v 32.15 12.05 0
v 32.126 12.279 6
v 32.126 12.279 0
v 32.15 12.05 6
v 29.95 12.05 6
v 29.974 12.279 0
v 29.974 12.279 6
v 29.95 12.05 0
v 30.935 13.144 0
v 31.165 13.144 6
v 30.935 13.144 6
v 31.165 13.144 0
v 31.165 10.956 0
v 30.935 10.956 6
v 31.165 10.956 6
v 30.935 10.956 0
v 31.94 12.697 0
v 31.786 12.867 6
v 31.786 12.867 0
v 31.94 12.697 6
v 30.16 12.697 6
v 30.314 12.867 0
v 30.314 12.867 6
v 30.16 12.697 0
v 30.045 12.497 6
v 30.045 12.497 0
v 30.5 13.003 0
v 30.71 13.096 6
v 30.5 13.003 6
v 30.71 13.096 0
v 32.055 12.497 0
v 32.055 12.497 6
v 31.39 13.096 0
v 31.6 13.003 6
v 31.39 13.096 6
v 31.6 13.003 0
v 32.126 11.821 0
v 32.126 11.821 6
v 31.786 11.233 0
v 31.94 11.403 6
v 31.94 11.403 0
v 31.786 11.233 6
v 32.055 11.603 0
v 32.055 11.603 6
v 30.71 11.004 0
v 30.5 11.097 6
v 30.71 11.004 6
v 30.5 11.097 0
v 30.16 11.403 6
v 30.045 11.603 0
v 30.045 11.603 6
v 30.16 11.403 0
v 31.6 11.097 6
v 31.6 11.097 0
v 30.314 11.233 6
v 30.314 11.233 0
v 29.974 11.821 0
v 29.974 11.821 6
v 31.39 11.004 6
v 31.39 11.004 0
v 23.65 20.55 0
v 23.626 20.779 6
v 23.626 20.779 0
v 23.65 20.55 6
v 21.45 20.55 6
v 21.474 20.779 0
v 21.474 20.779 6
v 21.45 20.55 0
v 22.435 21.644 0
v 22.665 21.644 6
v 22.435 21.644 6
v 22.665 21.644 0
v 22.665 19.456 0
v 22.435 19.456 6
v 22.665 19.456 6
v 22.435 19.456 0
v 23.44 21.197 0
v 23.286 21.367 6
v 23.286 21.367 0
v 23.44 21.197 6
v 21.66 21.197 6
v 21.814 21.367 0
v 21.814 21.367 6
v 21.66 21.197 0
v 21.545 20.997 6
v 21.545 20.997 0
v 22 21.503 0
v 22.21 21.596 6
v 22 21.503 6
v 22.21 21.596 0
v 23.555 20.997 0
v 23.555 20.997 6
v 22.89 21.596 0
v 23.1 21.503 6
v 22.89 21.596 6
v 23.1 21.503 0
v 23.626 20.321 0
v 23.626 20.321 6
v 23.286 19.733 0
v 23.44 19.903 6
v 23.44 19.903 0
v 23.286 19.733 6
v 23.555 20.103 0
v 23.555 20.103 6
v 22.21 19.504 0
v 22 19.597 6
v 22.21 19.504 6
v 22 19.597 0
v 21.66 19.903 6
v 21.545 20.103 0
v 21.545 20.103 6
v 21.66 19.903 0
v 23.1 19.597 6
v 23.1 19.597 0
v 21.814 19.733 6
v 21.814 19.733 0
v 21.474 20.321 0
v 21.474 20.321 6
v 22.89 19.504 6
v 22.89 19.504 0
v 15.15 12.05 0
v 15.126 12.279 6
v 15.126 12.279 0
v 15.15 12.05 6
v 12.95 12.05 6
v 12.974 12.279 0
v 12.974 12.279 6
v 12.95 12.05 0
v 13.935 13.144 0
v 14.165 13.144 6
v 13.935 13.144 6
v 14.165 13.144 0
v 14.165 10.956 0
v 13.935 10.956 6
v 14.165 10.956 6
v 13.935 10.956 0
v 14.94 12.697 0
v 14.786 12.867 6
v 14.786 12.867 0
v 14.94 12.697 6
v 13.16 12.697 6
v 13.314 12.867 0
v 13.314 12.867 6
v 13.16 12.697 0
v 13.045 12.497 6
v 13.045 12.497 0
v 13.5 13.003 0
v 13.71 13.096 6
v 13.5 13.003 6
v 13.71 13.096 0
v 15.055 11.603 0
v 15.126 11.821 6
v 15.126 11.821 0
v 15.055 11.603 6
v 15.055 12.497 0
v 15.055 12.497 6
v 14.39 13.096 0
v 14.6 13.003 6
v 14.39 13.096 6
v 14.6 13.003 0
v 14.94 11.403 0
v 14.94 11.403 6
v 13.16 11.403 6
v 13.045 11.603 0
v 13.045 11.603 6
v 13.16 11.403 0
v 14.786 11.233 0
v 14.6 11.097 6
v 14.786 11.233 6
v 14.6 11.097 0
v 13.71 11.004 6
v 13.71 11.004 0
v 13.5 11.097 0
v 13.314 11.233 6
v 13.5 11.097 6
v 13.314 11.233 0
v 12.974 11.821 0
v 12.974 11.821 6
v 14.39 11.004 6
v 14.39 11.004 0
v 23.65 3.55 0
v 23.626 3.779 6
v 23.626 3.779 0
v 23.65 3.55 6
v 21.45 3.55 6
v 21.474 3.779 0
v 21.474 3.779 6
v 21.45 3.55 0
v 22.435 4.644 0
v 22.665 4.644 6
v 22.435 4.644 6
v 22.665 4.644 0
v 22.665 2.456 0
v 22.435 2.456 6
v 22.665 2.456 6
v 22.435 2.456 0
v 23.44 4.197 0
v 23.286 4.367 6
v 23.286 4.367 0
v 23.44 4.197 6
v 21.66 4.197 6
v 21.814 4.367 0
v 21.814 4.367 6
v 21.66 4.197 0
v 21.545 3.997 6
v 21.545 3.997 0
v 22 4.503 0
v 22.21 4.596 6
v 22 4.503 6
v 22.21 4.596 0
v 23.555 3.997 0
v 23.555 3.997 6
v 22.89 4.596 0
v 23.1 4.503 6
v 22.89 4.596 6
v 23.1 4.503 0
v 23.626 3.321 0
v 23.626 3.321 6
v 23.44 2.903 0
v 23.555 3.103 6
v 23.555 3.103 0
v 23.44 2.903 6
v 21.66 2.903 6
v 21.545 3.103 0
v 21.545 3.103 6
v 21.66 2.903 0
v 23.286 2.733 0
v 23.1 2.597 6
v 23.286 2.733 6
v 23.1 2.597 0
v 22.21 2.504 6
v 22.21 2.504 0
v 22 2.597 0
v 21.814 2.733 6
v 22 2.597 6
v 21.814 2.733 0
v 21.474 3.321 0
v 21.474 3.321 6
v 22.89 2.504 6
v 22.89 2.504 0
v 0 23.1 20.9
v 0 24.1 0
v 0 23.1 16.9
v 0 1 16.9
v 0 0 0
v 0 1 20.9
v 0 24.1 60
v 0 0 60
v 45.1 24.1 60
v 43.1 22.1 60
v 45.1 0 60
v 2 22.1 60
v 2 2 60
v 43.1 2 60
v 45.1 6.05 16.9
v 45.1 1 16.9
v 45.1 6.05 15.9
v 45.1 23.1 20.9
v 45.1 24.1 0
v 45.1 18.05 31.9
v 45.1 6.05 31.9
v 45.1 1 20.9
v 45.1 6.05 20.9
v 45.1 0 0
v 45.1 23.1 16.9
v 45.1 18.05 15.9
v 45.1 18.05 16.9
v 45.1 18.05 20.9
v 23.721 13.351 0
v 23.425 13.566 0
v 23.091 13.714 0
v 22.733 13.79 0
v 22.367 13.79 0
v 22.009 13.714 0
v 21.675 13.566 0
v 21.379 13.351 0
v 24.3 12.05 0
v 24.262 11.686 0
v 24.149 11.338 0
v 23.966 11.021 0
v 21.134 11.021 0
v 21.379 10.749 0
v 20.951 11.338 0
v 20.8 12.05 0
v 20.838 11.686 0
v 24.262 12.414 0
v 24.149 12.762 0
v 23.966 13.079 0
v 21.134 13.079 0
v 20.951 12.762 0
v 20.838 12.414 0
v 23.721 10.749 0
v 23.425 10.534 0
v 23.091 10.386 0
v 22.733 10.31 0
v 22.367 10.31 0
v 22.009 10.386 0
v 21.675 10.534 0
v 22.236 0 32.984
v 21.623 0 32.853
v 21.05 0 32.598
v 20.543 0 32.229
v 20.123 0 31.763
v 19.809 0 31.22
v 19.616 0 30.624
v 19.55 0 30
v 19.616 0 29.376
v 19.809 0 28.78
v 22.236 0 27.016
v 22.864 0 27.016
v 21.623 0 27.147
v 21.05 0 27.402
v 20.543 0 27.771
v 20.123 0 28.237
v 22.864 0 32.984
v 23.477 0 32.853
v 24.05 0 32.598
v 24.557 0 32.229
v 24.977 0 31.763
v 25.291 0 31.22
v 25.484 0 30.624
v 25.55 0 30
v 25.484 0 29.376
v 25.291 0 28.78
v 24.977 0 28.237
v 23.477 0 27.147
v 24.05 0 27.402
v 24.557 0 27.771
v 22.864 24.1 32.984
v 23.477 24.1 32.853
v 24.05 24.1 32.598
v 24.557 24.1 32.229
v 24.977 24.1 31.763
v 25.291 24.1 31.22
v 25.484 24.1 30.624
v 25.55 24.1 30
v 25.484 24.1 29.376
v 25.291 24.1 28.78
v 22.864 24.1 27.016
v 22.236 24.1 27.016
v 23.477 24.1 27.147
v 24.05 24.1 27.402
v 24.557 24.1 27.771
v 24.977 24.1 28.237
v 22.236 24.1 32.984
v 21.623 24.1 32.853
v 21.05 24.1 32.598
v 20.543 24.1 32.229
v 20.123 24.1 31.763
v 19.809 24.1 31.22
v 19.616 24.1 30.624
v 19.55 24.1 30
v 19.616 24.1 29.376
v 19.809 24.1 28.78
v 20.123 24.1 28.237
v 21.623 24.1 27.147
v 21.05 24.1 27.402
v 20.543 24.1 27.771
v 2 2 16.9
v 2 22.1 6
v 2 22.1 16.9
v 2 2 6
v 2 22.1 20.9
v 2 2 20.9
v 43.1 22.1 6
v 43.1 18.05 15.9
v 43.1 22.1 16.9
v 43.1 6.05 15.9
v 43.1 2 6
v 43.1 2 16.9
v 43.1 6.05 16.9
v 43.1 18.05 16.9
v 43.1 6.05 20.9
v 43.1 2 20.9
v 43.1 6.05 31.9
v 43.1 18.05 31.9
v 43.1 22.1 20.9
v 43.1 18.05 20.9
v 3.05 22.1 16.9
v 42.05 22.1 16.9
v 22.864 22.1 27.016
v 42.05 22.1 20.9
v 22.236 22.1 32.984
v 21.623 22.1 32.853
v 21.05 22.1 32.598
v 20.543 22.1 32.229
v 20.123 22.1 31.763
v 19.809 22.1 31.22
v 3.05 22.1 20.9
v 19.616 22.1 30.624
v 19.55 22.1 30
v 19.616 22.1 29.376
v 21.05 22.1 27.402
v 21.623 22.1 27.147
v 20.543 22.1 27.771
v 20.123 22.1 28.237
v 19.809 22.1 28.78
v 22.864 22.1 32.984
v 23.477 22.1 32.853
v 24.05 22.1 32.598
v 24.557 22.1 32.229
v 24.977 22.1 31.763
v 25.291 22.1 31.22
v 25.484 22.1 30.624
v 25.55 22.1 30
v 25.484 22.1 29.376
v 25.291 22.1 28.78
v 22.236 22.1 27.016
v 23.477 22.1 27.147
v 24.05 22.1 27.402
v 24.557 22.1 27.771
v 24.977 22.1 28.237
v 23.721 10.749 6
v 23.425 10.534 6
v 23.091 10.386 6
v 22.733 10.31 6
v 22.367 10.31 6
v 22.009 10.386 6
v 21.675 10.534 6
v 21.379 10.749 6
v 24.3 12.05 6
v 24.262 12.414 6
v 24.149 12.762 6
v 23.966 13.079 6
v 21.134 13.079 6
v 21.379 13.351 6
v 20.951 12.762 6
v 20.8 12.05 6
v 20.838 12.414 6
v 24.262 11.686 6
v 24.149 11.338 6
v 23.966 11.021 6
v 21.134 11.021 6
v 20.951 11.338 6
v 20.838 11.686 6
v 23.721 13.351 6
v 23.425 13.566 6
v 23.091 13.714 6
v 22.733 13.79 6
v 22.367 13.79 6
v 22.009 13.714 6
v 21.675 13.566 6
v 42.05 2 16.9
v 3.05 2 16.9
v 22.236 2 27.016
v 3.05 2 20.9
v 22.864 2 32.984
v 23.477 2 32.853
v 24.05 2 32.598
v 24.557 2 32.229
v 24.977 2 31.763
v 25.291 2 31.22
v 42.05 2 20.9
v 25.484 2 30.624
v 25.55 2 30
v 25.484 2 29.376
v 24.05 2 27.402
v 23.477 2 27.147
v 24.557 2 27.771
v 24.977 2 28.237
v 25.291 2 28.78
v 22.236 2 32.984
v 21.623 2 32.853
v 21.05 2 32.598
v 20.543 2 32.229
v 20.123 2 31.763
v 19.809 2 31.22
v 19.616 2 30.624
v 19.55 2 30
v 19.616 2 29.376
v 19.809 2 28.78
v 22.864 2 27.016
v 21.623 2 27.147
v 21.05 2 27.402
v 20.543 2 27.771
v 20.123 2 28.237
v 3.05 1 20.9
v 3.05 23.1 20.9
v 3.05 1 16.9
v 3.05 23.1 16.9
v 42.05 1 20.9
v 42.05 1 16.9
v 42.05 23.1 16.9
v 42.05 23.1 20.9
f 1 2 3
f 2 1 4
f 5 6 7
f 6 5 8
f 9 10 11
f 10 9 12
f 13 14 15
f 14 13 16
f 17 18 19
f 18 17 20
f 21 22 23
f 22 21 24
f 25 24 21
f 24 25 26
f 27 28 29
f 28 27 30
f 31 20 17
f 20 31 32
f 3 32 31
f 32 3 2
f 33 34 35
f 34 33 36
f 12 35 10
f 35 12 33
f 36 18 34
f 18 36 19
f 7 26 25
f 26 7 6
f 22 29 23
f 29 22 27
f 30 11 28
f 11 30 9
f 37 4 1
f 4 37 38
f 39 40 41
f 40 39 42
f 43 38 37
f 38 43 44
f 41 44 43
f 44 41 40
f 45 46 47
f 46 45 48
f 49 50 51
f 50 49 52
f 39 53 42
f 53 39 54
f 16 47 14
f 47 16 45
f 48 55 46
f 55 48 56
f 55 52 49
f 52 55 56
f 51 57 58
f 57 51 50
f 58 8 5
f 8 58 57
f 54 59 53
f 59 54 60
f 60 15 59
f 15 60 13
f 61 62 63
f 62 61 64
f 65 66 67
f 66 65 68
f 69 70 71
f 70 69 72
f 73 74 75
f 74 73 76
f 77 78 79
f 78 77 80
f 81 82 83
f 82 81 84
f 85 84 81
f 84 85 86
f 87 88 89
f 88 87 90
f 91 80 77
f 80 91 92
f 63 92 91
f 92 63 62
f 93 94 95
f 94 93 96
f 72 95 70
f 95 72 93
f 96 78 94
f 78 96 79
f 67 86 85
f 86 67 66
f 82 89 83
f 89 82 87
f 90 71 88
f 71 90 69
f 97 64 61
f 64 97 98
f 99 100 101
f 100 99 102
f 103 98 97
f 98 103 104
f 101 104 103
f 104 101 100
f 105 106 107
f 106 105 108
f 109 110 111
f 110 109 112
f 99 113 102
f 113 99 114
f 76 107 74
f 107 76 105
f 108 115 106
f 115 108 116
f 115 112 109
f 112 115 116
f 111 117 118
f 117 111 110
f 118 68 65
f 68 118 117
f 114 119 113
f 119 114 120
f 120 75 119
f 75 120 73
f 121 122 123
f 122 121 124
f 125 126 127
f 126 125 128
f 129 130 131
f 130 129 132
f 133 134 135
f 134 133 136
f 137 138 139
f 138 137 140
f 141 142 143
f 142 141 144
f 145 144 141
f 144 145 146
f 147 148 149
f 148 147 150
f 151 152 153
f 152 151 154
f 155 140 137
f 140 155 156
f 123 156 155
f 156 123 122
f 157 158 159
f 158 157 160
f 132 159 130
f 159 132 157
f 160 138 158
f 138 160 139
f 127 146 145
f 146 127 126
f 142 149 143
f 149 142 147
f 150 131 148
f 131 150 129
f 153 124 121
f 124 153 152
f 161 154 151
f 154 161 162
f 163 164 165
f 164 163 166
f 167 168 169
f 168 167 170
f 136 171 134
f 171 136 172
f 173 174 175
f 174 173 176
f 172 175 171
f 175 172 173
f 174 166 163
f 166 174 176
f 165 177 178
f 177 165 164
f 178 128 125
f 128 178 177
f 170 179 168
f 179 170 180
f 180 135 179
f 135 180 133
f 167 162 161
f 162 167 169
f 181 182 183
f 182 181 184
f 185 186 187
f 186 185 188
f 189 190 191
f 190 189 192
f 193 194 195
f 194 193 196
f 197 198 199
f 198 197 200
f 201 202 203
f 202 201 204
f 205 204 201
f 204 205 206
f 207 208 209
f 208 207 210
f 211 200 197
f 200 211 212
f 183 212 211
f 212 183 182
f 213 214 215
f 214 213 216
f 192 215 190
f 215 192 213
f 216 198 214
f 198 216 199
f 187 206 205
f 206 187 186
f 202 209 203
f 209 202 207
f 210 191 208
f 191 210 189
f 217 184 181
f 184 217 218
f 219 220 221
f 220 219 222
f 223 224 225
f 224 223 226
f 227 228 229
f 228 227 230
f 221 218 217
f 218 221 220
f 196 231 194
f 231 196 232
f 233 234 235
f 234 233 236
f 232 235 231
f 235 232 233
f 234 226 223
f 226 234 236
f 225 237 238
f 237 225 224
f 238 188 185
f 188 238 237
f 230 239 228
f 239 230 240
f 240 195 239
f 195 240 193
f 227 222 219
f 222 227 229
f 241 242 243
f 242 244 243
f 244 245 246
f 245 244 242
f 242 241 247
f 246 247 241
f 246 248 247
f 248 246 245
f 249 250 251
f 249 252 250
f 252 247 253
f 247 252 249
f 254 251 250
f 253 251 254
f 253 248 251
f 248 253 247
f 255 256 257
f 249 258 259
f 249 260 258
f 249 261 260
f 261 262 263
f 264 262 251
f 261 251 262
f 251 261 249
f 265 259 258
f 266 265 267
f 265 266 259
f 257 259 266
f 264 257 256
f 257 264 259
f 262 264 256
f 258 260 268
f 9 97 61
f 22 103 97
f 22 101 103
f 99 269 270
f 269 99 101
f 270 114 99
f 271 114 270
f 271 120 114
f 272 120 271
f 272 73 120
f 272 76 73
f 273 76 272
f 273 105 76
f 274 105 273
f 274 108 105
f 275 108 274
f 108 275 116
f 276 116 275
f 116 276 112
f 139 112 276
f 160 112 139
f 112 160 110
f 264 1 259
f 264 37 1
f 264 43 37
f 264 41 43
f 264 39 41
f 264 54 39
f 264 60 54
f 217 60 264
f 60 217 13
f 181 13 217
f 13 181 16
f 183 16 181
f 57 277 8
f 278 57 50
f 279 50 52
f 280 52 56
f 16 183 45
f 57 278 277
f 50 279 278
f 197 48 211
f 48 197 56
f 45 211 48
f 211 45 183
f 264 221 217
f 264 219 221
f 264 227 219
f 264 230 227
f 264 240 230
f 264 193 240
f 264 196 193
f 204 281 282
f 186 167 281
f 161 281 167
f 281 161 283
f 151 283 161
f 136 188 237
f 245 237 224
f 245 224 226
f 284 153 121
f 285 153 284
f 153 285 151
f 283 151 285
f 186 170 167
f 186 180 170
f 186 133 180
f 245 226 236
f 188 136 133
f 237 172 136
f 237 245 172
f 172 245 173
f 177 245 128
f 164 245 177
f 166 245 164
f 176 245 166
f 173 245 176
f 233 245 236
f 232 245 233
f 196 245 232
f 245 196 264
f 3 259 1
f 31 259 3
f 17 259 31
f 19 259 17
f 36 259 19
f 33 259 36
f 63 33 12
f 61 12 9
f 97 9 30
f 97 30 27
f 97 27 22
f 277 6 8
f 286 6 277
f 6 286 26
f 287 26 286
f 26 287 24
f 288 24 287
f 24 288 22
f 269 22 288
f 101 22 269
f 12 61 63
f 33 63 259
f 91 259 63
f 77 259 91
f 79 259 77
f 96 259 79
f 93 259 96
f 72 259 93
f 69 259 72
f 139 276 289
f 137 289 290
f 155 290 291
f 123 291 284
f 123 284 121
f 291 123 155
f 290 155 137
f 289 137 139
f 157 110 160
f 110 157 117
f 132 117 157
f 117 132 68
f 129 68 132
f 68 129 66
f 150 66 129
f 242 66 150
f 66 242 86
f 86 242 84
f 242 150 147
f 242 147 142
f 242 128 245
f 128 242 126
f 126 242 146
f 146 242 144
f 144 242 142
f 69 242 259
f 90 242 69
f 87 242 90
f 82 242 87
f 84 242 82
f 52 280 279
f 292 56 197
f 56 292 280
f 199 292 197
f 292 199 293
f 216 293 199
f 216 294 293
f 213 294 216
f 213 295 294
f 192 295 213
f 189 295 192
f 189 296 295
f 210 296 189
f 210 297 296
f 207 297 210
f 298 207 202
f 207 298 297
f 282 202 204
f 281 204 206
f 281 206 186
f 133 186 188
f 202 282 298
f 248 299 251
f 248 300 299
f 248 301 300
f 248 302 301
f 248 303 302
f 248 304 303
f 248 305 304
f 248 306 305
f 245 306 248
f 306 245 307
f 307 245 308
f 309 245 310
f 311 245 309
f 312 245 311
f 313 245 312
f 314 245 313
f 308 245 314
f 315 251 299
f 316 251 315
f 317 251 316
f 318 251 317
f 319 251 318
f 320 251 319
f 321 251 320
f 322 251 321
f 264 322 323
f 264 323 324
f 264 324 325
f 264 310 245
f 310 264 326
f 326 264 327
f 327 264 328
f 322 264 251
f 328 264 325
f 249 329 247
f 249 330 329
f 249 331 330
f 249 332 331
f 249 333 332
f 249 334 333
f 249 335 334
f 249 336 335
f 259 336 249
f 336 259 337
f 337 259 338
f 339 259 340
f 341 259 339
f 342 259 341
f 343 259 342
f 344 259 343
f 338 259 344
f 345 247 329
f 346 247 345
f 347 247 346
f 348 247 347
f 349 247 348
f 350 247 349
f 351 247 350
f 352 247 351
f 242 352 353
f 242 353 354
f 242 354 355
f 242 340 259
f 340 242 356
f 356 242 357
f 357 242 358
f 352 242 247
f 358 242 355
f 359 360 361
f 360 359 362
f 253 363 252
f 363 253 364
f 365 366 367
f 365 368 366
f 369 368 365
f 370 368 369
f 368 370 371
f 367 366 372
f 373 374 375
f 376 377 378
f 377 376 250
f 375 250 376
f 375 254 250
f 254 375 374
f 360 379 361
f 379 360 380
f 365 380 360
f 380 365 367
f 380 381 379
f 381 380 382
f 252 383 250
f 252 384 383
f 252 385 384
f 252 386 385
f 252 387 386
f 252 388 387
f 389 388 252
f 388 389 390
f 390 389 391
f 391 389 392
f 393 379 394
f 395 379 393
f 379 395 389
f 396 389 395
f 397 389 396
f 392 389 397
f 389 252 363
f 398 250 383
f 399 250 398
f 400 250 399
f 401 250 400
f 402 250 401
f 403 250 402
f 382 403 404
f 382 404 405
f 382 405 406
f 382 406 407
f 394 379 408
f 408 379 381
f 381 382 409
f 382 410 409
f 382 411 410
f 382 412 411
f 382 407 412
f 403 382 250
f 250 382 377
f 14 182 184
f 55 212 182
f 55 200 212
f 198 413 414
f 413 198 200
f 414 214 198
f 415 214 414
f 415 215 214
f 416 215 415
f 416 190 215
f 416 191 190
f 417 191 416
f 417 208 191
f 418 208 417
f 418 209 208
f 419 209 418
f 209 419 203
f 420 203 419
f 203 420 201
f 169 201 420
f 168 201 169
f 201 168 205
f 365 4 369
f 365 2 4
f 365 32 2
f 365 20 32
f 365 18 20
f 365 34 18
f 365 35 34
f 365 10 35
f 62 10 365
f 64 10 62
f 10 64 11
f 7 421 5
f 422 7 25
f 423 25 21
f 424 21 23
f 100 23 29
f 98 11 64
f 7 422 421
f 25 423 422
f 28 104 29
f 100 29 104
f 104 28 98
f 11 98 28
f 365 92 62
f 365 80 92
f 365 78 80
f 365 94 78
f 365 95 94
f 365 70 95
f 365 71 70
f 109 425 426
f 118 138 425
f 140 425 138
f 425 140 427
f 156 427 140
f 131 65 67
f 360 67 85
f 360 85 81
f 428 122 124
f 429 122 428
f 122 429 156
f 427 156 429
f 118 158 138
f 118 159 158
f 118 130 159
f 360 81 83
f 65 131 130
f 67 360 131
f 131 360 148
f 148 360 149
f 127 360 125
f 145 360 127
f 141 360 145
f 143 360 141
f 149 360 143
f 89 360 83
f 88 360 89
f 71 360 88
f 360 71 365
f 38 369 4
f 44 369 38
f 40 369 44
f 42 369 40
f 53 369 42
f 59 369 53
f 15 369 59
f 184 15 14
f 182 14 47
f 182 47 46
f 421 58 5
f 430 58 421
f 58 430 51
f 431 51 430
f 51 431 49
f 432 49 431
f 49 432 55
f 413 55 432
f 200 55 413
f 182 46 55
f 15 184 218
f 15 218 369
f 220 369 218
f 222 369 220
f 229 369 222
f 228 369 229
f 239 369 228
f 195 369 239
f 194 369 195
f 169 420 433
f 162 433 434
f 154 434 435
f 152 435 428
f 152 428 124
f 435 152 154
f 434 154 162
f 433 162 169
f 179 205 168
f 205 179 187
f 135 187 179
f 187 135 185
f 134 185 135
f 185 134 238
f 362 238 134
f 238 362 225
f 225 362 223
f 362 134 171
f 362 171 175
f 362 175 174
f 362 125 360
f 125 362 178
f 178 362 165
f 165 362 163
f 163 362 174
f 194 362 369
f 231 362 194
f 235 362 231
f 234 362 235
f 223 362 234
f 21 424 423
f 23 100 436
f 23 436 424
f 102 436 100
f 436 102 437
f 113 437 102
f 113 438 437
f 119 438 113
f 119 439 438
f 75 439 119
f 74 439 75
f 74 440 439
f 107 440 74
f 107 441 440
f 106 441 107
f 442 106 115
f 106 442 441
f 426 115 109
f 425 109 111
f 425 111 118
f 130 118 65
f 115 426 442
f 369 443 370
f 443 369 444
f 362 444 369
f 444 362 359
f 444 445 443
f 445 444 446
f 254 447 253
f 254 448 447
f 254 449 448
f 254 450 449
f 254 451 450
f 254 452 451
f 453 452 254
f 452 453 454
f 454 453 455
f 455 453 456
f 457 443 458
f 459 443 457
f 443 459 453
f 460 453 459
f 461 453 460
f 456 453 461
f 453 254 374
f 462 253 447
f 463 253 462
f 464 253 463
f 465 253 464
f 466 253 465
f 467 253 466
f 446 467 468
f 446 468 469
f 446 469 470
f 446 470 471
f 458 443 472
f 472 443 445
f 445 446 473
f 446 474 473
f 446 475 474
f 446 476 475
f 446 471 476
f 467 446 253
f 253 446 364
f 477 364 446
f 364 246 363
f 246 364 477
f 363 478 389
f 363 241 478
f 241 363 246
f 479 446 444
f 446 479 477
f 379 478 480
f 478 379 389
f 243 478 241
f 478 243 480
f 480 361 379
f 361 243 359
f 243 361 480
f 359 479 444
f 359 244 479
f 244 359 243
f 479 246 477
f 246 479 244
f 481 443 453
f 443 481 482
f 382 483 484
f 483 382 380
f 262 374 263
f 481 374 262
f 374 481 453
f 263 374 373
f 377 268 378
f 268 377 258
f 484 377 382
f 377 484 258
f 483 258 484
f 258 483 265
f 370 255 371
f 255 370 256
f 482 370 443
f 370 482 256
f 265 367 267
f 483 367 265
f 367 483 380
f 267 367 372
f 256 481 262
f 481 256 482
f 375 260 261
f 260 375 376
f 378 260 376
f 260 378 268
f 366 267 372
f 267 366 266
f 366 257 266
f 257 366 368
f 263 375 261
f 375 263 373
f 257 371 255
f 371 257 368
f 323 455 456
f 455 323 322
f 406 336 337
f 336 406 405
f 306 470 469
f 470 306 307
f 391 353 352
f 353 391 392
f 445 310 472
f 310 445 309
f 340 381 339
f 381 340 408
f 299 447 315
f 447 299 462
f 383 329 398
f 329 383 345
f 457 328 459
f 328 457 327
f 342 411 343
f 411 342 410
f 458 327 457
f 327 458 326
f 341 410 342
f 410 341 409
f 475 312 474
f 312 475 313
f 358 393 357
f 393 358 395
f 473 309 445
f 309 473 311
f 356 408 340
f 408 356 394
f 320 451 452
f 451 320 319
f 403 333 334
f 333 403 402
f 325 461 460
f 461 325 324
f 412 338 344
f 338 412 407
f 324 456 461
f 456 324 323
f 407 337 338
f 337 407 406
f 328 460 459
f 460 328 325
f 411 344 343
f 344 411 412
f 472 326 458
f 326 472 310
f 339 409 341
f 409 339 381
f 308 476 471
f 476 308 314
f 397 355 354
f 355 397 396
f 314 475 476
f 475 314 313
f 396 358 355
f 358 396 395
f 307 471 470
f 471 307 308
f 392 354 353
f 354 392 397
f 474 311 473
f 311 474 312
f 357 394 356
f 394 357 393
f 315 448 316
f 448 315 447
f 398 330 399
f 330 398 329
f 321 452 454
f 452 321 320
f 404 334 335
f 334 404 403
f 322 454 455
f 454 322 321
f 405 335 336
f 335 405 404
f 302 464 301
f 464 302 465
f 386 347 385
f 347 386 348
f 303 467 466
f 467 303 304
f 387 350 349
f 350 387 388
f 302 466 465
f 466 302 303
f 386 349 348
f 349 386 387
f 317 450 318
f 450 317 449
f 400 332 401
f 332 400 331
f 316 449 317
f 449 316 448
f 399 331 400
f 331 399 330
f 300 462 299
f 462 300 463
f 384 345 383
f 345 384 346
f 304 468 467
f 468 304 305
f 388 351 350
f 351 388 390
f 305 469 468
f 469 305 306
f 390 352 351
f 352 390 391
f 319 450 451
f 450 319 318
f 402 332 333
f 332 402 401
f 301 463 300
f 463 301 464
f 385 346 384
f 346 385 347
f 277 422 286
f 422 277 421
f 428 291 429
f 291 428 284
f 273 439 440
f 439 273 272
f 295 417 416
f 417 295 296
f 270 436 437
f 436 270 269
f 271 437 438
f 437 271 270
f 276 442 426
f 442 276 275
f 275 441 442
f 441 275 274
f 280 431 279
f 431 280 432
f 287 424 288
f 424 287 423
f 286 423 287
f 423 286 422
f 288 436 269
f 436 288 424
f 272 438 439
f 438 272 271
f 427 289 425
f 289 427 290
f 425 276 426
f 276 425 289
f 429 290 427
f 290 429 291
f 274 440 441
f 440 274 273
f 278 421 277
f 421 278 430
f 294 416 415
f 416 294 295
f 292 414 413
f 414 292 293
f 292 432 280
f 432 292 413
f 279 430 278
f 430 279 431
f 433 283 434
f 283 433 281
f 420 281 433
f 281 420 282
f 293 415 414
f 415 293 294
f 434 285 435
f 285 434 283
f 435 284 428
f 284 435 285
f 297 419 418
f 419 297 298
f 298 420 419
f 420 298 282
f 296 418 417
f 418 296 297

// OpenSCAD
// ============================================================
// Part 2: Base Pillar / Turntable
// Remote Surgical Training Arm — Jaycar Servo Edition
// ============================================================
// Print: upright (pillar standing), supports inside servo pocket
// Time: ~1 hr, ~24g
// ============================================================
// This part bolts onto Horn A (on the base YM2765) at the bottom,
// and holds the shoulder servo (YM2763) in a pocket at the top.
// The whole pillar rotates on the base servo = yaw axis.
//
// NOTE: YM2763 and YM2765 have IDENTICAL body dimensions
// (40.7 × 19.7 × 42.9mm, 55g) — same pocket fits both.
// ============================================================

// === MEASURE YOUR YM2763 WITH CALIPERS AND UPDATE THESE ===
// (shoulder servo — sits in the top pocket)
servo_body_w   = 40.7;   // YM2763 body width (long side)
servo_body_d   = 19.7;   // YM2763 body depth (short side)
servo_body_h   = 42.9;   // YM2763 body height
servo_tab_cc   = 49.0;   // tab hole centre-to-centre — MEASURE THIS
tolerance      = 0.2;    // clearance per side

// Horn bolt pattern (standard 25T plastic horn included with servo)
// Typical 4-arm horn has holes on a ~8-10mm radius from centre
horn_bolt_circle_r = 8.5;  // radius of M2 bolt holes — MEASURE YOUR HORN
horn_center_hole   = 3.5;  // centre access hole for horn screw
m2_hole_dia        = 2.2;  // M2 through-hole with clearance

// Pillar dimensions
wall            = 2.0;    // wall thickness
pillar_w        = servo_body_w + wall * 2 + tolerance * 2;  // ~44.7mm
pillar_d        = servo_body_d + wall * 2 + tolerance * 2;  // ~24.1mm
pillar_h        = 60;     // total height — increased from 55 to accommodate taller YM2765

// Servo pocket at top
// The pocket depth needs to fit the servo body, shaft exits to one side
pocket_depth    = servo_body_h + tolerance;  // ~43.1mm

// Horn mount pad at bottom — solid base for bolting to horn
horn_pad_h      = 6;      // thickness of solid pad

// Wire pass-through
wire_hole_dia   = 6;
wire_hole_z     = 30;     // centre height from bottom

// M3 tab holes for shoulder servo (through pillar walls)
m3_hole_dia     = 3.2;

// === DERIVED ===
pocket_w = servo_body_w + tolerance * 2;
pocket_d = servo_body_d + tolerance * 2;

module pillar() {
    difference() {
        // --- Outer shell ---
        cube([pillar_w, pillar_d, pillar_h]);
        
        // --- Hollow interior (above horn pad, below servo pocket) ---
        translate([wall, wall, horn_pad_h])
            cube([
                pillar_w - wall * 2,
                pillar_d - wall * 2,
                pillar_h - horn_pad_h - wall  // leave top wall for pocket ceiling
            ]);
        
        // --- Servo pocket from top ---
        // Centred in X and Y, open at top
        translate([
            (pillar_w - pocket_w) / 2,
            (pillar_d - pocket_d) / 2,
            pillar_h - pocket_depth
        ])
            cube([pocket_w, pocket_d, pocket_depth + 1]);
        
        // --- Tab slots for shoulder servo mounting ears ---
        // Tabs extend beyond the body along the width axis
        // Left tab clearance
        translate([
            (pillar_w - servo_tab_cc) / 2 - 5,
            (pillar_d - pocket_d) / 2 - 1,
            pillar_h - pocket_depth
        ])
            cube([10, pocket_d + 2, 4]);
        
        // Right tab clearance  
        translate([
            (pillar_w + servo_tab_cc) / 2 - 5,
            (pillar_d - pocket_d) / 2 - 1,
            pillar_h - pocket_depth
        ])
            cube([10, pocket_d + 2, 4]);
        
        // --- Shaft exit slot on one side of pillar ---
        // Servo shaft needs to poke out the right side (+X)
        // Cut a slot in the right wall for shaft and gear housing
        translate([
            pillar_w - wall - 1,
            (pillar_d - 12) / 2,   // shaft housing ~12mm wide
            pillar_h - pocket_depth - 1
        ])
            cube([wall + 2, 12, 16]);  // tall enough for shaft + gear bulge
        
        // --- M3 mounting holes for shoulder servo tabs ---
        // Standard servo tabs protrude along X axis from body ends.
        // Screws go vertically (Z) down through the tab into the pillar wall.
        // Left tab hole
        translate([
            (pillar_w - servo_tab_cc) / 2,
            pillar_d / 2,
            pillar_h - pocket_depth - 1
        ])
            cylinder(h = pocket_depth + 2, d = m3_hole_dia, $fn = 30);
        
        // Right tab hole
        translate([
            (pillar_w + servo_tab_cc) / 2,
            pillar_d / 2,
            pillar_h - pocket_depth - 1
        ])
            cylinder(h = pocket_depth + 2, d = m3_hole_dia, $fn = 30);
        
        // --- Wire pass-through hole ---
        translate([
            pillar_w / 2,
            -1,
            wire_hole_z
        ])
            rotate([-90, 0, 0])
                cylinder(h = pillar_d + 2, d = wire_hole_dia, $fn = 30);
        
        // --- Horn mount holes in bottom pad ---
        // 4× M2 holes in a cross pattern matching the horn
        for (angle = [0, 90, 180, 270])
            translate([
                pillar_w / 2 + horn_bolt_circle_r * cos(angle),
                pillar_d / 2 + horn_bolt_circle_r * sin(angle),
                -1
            ])
                cylinder(h = horn_pad_h + 2, d = m2_hole_dia, $fn = 30);
        
        // Centre hole for horn screw access
        translate([pillar_w / 2, pillar_d / 2, -1])
            cylinder(h = horn_pad_h + 2, d = horn_center_hole, $fn = 30);
    }
}

pillar();
